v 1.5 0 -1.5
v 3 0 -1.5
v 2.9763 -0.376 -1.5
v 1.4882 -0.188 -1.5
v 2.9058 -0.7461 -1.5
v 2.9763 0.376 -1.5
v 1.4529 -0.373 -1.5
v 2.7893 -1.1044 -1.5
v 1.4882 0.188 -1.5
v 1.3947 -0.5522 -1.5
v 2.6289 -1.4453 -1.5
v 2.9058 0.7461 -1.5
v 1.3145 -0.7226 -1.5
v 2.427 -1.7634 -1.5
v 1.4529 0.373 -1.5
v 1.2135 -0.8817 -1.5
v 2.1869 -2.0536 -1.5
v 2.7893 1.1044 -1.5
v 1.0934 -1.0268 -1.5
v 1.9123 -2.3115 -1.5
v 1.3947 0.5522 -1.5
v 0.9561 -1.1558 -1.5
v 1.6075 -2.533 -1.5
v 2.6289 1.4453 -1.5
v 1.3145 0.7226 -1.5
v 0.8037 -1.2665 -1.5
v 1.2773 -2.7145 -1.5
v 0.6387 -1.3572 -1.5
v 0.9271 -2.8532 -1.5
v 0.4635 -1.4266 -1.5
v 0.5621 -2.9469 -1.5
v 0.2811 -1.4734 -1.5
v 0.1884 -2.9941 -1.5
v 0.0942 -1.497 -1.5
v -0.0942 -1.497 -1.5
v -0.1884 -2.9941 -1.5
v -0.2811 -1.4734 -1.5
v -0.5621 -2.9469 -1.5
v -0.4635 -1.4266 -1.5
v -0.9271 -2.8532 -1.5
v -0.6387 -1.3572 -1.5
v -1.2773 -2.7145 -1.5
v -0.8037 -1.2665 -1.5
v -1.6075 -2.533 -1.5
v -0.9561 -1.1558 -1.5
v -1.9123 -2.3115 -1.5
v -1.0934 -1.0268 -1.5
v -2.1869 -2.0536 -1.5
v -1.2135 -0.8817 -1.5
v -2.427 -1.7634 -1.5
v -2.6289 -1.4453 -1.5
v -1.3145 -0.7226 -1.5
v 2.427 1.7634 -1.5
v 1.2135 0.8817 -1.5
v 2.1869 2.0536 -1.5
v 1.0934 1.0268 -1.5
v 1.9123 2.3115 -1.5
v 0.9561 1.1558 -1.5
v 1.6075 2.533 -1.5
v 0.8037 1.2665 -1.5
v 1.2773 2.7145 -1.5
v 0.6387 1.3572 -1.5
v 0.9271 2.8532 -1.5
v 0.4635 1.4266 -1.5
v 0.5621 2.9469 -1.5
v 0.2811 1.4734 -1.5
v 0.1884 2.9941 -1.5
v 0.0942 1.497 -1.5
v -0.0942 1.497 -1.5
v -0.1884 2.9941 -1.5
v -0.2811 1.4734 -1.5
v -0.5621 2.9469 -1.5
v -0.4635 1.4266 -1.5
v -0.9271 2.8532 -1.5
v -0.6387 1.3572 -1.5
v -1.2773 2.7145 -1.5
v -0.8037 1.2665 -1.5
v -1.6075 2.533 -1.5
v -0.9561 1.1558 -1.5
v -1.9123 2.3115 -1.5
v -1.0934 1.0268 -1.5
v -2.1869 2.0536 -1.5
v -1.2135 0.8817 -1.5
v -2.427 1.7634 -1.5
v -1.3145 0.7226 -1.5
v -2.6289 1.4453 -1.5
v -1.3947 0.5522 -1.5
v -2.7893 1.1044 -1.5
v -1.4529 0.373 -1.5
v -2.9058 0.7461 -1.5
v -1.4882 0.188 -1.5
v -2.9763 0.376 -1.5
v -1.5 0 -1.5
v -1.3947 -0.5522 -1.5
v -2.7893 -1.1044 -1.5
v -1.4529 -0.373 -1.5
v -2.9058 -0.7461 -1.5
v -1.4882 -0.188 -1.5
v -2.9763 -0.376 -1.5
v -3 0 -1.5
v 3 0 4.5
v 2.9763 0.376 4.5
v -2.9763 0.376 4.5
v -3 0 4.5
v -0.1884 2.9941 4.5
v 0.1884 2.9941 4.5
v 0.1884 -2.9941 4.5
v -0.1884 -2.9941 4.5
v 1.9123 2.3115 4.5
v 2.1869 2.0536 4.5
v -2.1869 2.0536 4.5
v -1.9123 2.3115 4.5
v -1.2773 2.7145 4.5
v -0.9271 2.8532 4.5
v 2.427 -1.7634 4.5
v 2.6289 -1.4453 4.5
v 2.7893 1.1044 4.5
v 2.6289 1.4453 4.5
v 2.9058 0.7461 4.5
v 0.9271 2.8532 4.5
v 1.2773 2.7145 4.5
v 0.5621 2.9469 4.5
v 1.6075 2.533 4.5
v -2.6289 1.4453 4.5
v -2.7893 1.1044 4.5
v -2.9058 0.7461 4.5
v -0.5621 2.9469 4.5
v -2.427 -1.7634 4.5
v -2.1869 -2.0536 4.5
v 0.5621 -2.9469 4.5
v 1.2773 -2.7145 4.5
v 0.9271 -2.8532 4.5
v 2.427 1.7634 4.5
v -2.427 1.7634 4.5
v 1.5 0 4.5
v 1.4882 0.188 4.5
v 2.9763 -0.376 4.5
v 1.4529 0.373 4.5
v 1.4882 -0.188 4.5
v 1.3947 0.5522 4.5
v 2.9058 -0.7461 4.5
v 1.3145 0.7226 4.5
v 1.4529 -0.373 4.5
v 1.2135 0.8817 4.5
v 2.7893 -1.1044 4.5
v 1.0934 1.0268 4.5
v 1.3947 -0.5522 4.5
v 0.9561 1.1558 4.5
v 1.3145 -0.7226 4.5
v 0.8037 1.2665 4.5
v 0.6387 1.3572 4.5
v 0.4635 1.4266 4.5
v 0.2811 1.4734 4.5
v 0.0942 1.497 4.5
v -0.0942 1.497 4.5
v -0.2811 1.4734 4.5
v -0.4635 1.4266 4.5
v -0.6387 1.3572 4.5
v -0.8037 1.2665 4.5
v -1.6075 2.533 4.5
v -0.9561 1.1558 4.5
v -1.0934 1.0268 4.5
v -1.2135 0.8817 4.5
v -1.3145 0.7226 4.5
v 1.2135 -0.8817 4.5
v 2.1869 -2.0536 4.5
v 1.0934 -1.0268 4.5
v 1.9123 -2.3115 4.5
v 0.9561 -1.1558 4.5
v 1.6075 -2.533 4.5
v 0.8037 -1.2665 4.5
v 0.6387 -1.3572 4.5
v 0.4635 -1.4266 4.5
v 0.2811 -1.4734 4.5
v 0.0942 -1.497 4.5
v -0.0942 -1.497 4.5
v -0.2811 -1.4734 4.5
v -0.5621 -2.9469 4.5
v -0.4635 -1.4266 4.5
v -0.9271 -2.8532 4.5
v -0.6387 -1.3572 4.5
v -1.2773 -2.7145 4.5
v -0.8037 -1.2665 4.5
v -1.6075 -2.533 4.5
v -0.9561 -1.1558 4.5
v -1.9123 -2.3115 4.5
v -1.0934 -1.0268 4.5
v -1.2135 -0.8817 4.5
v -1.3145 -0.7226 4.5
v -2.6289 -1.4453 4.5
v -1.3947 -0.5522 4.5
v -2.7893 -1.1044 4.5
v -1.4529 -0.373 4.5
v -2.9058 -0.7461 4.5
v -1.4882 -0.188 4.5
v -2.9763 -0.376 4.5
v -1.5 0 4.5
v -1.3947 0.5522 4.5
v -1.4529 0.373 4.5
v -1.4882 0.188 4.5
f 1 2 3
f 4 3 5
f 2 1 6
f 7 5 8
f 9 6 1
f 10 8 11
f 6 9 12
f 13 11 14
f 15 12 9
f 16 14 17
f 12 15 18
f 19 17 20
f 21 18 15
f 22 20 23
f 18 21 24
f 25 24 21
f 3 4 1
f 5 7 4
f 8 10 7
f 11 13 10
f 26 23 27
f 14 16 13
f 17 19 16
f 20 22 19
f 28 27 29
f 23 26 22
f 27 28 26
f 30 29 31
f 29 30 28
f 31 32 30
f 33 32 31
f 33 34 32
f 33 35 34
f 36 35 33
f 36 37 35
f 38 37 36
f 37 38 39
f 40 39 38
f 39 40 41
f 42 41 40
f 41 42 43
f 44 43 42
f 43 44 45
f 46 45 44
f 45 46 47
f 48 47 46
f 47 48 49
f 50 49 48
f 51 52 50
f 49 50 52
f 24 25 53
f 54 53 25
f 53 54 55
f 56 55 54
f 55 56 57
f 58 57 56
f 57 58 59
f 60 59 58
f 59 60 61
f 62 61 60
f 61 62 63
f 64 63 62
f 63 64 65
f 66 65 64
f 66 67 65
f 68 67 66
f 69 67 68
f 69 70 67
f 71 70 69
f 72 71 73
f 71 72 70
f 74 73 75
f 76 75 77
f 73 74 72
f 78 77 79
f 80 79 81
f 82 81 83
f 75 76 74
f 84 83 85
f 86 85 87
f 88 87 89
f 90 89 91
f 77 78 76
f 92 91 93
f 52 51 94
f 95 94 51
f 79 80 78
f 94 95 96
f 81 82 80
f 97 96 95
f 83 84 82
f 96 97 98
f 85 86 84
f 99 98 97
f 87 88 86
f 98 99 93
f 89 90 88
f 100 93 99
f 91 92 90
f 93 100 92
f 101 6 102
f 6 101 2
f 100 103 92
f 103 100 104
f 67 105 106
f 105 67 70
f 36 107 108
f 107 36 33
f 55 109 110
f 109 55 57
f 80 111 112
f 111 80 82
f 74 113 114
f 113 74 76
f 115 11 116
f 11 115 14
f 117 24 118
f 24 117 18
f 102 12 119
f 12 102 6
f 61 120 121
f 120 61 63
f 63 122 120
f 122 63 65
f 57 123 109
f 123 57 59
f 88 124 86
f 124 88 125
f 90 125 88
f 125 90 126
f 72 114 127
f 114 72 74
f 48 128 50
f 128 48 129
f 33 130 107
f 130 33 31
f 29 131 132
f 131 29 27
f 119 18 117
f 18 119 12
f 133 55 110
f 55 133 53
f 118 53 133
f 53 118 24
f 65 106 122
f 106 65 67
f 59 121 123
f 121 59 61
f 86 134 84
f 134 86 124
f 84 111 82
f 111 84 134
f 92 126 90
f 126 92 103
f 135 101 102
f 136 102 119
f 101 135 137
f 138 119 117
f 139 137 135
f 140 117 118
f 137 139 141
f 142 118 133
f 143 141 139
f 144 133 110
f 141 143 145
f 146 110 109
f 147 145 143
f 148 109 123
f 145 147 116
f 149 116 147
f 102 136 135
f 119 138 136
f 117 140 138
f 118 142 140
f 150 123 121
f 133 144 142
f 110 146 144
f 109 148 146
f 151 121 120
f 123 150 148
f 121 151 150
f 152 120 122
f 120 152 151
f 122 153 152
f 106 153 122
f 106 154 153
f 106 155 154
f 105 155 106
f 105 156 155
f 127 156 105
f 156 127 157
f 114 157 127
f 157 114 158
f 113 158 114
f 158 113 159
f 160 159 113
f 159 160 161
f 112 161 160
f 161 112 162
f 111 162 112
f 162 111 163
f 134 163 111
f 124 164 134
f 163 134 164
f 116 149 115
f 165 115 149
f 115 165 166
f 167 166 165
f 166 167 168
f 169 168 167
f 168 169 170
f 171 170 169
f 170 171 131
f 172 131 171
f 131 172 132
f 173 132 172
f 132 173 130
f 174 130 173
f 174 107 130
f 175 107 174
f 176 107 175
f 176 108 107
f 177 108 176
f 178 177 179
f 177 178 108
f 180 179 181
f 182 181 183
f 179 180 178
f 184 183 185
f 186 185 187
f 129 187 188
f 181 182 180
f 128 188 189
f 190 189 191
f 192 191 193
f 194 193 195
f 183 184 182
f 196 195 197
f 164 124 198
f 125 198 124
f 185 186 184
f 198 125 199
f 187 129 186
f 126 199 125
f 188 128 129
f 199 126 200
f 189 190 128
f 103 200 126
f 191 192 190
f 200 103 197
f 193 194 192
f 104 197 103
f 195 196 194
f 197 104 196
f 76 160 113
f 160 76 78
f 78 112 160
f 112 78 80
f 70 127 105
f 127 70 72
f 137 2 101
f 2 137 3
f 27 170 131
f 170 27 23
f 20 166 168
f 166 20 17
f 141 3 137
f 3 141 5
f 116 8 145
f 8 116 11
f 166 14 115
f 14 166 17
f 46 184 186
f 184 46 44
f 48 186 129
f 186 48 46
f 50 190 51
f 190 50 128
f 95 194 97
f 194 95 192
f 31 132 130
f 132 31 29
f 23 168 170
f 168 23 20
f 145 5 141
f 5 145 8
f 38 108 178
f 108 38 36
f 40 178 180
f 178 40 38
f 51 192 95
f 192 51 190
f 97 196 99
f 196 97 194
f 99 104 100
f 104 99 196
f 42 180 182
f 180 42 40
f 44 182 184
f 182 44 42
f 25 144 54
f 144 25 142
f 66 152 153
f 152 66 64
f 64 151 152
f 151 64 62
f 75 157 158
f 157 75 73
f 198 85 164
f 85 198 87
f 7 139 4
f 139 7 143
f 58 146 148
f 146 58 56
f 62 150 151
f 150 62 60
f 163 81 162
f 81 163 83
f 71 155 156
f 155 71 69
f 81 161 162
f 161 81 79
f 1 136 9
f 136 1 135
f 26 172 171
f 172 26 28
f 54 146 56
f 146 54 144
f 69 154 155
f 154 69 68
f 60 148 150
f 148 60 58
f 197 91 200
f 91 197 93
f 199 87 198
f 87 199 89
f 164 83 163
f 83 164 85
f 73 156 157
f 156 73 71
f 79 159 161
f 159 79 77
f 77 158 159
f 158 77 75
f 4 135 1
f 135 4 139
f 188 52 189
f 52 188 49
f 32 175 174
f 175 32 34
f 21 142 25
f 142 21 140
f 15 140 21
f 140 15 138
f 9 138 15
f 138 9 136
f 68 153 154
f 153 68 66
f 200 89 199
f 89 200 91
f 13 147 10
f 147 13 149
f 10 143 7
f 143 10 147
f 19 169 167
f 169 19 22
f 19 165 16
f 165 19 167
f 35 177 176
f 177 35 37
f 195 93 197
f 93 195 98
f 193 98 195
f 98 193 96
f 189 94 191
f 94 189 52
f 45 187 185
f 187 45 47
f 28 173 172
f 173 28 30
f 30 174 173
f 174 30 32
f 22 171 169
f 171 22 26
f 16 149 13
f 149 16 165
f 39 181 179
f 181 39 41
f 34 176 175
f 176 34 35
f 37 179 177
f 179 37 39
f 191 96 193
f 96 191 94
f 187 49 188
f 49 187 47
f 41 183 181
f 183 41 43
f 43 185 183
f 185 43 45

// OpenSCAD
$fn = 50;


difference() {
	union() {
		translate(v = [0, 0, -1.5000000000]) {
			cylinder(h = 3, r = 1.0000000000);
		}
		translate(v = [0, 0, -1.5000000000]) {
			cylinder(h = 6, r = 3.0000000000);
		}
	}
	union() {
		translate(v = [0, 0, -50.0000000000]) {
			cylinder(h = 100, r = 1.5000000000);
		}
	}
}
